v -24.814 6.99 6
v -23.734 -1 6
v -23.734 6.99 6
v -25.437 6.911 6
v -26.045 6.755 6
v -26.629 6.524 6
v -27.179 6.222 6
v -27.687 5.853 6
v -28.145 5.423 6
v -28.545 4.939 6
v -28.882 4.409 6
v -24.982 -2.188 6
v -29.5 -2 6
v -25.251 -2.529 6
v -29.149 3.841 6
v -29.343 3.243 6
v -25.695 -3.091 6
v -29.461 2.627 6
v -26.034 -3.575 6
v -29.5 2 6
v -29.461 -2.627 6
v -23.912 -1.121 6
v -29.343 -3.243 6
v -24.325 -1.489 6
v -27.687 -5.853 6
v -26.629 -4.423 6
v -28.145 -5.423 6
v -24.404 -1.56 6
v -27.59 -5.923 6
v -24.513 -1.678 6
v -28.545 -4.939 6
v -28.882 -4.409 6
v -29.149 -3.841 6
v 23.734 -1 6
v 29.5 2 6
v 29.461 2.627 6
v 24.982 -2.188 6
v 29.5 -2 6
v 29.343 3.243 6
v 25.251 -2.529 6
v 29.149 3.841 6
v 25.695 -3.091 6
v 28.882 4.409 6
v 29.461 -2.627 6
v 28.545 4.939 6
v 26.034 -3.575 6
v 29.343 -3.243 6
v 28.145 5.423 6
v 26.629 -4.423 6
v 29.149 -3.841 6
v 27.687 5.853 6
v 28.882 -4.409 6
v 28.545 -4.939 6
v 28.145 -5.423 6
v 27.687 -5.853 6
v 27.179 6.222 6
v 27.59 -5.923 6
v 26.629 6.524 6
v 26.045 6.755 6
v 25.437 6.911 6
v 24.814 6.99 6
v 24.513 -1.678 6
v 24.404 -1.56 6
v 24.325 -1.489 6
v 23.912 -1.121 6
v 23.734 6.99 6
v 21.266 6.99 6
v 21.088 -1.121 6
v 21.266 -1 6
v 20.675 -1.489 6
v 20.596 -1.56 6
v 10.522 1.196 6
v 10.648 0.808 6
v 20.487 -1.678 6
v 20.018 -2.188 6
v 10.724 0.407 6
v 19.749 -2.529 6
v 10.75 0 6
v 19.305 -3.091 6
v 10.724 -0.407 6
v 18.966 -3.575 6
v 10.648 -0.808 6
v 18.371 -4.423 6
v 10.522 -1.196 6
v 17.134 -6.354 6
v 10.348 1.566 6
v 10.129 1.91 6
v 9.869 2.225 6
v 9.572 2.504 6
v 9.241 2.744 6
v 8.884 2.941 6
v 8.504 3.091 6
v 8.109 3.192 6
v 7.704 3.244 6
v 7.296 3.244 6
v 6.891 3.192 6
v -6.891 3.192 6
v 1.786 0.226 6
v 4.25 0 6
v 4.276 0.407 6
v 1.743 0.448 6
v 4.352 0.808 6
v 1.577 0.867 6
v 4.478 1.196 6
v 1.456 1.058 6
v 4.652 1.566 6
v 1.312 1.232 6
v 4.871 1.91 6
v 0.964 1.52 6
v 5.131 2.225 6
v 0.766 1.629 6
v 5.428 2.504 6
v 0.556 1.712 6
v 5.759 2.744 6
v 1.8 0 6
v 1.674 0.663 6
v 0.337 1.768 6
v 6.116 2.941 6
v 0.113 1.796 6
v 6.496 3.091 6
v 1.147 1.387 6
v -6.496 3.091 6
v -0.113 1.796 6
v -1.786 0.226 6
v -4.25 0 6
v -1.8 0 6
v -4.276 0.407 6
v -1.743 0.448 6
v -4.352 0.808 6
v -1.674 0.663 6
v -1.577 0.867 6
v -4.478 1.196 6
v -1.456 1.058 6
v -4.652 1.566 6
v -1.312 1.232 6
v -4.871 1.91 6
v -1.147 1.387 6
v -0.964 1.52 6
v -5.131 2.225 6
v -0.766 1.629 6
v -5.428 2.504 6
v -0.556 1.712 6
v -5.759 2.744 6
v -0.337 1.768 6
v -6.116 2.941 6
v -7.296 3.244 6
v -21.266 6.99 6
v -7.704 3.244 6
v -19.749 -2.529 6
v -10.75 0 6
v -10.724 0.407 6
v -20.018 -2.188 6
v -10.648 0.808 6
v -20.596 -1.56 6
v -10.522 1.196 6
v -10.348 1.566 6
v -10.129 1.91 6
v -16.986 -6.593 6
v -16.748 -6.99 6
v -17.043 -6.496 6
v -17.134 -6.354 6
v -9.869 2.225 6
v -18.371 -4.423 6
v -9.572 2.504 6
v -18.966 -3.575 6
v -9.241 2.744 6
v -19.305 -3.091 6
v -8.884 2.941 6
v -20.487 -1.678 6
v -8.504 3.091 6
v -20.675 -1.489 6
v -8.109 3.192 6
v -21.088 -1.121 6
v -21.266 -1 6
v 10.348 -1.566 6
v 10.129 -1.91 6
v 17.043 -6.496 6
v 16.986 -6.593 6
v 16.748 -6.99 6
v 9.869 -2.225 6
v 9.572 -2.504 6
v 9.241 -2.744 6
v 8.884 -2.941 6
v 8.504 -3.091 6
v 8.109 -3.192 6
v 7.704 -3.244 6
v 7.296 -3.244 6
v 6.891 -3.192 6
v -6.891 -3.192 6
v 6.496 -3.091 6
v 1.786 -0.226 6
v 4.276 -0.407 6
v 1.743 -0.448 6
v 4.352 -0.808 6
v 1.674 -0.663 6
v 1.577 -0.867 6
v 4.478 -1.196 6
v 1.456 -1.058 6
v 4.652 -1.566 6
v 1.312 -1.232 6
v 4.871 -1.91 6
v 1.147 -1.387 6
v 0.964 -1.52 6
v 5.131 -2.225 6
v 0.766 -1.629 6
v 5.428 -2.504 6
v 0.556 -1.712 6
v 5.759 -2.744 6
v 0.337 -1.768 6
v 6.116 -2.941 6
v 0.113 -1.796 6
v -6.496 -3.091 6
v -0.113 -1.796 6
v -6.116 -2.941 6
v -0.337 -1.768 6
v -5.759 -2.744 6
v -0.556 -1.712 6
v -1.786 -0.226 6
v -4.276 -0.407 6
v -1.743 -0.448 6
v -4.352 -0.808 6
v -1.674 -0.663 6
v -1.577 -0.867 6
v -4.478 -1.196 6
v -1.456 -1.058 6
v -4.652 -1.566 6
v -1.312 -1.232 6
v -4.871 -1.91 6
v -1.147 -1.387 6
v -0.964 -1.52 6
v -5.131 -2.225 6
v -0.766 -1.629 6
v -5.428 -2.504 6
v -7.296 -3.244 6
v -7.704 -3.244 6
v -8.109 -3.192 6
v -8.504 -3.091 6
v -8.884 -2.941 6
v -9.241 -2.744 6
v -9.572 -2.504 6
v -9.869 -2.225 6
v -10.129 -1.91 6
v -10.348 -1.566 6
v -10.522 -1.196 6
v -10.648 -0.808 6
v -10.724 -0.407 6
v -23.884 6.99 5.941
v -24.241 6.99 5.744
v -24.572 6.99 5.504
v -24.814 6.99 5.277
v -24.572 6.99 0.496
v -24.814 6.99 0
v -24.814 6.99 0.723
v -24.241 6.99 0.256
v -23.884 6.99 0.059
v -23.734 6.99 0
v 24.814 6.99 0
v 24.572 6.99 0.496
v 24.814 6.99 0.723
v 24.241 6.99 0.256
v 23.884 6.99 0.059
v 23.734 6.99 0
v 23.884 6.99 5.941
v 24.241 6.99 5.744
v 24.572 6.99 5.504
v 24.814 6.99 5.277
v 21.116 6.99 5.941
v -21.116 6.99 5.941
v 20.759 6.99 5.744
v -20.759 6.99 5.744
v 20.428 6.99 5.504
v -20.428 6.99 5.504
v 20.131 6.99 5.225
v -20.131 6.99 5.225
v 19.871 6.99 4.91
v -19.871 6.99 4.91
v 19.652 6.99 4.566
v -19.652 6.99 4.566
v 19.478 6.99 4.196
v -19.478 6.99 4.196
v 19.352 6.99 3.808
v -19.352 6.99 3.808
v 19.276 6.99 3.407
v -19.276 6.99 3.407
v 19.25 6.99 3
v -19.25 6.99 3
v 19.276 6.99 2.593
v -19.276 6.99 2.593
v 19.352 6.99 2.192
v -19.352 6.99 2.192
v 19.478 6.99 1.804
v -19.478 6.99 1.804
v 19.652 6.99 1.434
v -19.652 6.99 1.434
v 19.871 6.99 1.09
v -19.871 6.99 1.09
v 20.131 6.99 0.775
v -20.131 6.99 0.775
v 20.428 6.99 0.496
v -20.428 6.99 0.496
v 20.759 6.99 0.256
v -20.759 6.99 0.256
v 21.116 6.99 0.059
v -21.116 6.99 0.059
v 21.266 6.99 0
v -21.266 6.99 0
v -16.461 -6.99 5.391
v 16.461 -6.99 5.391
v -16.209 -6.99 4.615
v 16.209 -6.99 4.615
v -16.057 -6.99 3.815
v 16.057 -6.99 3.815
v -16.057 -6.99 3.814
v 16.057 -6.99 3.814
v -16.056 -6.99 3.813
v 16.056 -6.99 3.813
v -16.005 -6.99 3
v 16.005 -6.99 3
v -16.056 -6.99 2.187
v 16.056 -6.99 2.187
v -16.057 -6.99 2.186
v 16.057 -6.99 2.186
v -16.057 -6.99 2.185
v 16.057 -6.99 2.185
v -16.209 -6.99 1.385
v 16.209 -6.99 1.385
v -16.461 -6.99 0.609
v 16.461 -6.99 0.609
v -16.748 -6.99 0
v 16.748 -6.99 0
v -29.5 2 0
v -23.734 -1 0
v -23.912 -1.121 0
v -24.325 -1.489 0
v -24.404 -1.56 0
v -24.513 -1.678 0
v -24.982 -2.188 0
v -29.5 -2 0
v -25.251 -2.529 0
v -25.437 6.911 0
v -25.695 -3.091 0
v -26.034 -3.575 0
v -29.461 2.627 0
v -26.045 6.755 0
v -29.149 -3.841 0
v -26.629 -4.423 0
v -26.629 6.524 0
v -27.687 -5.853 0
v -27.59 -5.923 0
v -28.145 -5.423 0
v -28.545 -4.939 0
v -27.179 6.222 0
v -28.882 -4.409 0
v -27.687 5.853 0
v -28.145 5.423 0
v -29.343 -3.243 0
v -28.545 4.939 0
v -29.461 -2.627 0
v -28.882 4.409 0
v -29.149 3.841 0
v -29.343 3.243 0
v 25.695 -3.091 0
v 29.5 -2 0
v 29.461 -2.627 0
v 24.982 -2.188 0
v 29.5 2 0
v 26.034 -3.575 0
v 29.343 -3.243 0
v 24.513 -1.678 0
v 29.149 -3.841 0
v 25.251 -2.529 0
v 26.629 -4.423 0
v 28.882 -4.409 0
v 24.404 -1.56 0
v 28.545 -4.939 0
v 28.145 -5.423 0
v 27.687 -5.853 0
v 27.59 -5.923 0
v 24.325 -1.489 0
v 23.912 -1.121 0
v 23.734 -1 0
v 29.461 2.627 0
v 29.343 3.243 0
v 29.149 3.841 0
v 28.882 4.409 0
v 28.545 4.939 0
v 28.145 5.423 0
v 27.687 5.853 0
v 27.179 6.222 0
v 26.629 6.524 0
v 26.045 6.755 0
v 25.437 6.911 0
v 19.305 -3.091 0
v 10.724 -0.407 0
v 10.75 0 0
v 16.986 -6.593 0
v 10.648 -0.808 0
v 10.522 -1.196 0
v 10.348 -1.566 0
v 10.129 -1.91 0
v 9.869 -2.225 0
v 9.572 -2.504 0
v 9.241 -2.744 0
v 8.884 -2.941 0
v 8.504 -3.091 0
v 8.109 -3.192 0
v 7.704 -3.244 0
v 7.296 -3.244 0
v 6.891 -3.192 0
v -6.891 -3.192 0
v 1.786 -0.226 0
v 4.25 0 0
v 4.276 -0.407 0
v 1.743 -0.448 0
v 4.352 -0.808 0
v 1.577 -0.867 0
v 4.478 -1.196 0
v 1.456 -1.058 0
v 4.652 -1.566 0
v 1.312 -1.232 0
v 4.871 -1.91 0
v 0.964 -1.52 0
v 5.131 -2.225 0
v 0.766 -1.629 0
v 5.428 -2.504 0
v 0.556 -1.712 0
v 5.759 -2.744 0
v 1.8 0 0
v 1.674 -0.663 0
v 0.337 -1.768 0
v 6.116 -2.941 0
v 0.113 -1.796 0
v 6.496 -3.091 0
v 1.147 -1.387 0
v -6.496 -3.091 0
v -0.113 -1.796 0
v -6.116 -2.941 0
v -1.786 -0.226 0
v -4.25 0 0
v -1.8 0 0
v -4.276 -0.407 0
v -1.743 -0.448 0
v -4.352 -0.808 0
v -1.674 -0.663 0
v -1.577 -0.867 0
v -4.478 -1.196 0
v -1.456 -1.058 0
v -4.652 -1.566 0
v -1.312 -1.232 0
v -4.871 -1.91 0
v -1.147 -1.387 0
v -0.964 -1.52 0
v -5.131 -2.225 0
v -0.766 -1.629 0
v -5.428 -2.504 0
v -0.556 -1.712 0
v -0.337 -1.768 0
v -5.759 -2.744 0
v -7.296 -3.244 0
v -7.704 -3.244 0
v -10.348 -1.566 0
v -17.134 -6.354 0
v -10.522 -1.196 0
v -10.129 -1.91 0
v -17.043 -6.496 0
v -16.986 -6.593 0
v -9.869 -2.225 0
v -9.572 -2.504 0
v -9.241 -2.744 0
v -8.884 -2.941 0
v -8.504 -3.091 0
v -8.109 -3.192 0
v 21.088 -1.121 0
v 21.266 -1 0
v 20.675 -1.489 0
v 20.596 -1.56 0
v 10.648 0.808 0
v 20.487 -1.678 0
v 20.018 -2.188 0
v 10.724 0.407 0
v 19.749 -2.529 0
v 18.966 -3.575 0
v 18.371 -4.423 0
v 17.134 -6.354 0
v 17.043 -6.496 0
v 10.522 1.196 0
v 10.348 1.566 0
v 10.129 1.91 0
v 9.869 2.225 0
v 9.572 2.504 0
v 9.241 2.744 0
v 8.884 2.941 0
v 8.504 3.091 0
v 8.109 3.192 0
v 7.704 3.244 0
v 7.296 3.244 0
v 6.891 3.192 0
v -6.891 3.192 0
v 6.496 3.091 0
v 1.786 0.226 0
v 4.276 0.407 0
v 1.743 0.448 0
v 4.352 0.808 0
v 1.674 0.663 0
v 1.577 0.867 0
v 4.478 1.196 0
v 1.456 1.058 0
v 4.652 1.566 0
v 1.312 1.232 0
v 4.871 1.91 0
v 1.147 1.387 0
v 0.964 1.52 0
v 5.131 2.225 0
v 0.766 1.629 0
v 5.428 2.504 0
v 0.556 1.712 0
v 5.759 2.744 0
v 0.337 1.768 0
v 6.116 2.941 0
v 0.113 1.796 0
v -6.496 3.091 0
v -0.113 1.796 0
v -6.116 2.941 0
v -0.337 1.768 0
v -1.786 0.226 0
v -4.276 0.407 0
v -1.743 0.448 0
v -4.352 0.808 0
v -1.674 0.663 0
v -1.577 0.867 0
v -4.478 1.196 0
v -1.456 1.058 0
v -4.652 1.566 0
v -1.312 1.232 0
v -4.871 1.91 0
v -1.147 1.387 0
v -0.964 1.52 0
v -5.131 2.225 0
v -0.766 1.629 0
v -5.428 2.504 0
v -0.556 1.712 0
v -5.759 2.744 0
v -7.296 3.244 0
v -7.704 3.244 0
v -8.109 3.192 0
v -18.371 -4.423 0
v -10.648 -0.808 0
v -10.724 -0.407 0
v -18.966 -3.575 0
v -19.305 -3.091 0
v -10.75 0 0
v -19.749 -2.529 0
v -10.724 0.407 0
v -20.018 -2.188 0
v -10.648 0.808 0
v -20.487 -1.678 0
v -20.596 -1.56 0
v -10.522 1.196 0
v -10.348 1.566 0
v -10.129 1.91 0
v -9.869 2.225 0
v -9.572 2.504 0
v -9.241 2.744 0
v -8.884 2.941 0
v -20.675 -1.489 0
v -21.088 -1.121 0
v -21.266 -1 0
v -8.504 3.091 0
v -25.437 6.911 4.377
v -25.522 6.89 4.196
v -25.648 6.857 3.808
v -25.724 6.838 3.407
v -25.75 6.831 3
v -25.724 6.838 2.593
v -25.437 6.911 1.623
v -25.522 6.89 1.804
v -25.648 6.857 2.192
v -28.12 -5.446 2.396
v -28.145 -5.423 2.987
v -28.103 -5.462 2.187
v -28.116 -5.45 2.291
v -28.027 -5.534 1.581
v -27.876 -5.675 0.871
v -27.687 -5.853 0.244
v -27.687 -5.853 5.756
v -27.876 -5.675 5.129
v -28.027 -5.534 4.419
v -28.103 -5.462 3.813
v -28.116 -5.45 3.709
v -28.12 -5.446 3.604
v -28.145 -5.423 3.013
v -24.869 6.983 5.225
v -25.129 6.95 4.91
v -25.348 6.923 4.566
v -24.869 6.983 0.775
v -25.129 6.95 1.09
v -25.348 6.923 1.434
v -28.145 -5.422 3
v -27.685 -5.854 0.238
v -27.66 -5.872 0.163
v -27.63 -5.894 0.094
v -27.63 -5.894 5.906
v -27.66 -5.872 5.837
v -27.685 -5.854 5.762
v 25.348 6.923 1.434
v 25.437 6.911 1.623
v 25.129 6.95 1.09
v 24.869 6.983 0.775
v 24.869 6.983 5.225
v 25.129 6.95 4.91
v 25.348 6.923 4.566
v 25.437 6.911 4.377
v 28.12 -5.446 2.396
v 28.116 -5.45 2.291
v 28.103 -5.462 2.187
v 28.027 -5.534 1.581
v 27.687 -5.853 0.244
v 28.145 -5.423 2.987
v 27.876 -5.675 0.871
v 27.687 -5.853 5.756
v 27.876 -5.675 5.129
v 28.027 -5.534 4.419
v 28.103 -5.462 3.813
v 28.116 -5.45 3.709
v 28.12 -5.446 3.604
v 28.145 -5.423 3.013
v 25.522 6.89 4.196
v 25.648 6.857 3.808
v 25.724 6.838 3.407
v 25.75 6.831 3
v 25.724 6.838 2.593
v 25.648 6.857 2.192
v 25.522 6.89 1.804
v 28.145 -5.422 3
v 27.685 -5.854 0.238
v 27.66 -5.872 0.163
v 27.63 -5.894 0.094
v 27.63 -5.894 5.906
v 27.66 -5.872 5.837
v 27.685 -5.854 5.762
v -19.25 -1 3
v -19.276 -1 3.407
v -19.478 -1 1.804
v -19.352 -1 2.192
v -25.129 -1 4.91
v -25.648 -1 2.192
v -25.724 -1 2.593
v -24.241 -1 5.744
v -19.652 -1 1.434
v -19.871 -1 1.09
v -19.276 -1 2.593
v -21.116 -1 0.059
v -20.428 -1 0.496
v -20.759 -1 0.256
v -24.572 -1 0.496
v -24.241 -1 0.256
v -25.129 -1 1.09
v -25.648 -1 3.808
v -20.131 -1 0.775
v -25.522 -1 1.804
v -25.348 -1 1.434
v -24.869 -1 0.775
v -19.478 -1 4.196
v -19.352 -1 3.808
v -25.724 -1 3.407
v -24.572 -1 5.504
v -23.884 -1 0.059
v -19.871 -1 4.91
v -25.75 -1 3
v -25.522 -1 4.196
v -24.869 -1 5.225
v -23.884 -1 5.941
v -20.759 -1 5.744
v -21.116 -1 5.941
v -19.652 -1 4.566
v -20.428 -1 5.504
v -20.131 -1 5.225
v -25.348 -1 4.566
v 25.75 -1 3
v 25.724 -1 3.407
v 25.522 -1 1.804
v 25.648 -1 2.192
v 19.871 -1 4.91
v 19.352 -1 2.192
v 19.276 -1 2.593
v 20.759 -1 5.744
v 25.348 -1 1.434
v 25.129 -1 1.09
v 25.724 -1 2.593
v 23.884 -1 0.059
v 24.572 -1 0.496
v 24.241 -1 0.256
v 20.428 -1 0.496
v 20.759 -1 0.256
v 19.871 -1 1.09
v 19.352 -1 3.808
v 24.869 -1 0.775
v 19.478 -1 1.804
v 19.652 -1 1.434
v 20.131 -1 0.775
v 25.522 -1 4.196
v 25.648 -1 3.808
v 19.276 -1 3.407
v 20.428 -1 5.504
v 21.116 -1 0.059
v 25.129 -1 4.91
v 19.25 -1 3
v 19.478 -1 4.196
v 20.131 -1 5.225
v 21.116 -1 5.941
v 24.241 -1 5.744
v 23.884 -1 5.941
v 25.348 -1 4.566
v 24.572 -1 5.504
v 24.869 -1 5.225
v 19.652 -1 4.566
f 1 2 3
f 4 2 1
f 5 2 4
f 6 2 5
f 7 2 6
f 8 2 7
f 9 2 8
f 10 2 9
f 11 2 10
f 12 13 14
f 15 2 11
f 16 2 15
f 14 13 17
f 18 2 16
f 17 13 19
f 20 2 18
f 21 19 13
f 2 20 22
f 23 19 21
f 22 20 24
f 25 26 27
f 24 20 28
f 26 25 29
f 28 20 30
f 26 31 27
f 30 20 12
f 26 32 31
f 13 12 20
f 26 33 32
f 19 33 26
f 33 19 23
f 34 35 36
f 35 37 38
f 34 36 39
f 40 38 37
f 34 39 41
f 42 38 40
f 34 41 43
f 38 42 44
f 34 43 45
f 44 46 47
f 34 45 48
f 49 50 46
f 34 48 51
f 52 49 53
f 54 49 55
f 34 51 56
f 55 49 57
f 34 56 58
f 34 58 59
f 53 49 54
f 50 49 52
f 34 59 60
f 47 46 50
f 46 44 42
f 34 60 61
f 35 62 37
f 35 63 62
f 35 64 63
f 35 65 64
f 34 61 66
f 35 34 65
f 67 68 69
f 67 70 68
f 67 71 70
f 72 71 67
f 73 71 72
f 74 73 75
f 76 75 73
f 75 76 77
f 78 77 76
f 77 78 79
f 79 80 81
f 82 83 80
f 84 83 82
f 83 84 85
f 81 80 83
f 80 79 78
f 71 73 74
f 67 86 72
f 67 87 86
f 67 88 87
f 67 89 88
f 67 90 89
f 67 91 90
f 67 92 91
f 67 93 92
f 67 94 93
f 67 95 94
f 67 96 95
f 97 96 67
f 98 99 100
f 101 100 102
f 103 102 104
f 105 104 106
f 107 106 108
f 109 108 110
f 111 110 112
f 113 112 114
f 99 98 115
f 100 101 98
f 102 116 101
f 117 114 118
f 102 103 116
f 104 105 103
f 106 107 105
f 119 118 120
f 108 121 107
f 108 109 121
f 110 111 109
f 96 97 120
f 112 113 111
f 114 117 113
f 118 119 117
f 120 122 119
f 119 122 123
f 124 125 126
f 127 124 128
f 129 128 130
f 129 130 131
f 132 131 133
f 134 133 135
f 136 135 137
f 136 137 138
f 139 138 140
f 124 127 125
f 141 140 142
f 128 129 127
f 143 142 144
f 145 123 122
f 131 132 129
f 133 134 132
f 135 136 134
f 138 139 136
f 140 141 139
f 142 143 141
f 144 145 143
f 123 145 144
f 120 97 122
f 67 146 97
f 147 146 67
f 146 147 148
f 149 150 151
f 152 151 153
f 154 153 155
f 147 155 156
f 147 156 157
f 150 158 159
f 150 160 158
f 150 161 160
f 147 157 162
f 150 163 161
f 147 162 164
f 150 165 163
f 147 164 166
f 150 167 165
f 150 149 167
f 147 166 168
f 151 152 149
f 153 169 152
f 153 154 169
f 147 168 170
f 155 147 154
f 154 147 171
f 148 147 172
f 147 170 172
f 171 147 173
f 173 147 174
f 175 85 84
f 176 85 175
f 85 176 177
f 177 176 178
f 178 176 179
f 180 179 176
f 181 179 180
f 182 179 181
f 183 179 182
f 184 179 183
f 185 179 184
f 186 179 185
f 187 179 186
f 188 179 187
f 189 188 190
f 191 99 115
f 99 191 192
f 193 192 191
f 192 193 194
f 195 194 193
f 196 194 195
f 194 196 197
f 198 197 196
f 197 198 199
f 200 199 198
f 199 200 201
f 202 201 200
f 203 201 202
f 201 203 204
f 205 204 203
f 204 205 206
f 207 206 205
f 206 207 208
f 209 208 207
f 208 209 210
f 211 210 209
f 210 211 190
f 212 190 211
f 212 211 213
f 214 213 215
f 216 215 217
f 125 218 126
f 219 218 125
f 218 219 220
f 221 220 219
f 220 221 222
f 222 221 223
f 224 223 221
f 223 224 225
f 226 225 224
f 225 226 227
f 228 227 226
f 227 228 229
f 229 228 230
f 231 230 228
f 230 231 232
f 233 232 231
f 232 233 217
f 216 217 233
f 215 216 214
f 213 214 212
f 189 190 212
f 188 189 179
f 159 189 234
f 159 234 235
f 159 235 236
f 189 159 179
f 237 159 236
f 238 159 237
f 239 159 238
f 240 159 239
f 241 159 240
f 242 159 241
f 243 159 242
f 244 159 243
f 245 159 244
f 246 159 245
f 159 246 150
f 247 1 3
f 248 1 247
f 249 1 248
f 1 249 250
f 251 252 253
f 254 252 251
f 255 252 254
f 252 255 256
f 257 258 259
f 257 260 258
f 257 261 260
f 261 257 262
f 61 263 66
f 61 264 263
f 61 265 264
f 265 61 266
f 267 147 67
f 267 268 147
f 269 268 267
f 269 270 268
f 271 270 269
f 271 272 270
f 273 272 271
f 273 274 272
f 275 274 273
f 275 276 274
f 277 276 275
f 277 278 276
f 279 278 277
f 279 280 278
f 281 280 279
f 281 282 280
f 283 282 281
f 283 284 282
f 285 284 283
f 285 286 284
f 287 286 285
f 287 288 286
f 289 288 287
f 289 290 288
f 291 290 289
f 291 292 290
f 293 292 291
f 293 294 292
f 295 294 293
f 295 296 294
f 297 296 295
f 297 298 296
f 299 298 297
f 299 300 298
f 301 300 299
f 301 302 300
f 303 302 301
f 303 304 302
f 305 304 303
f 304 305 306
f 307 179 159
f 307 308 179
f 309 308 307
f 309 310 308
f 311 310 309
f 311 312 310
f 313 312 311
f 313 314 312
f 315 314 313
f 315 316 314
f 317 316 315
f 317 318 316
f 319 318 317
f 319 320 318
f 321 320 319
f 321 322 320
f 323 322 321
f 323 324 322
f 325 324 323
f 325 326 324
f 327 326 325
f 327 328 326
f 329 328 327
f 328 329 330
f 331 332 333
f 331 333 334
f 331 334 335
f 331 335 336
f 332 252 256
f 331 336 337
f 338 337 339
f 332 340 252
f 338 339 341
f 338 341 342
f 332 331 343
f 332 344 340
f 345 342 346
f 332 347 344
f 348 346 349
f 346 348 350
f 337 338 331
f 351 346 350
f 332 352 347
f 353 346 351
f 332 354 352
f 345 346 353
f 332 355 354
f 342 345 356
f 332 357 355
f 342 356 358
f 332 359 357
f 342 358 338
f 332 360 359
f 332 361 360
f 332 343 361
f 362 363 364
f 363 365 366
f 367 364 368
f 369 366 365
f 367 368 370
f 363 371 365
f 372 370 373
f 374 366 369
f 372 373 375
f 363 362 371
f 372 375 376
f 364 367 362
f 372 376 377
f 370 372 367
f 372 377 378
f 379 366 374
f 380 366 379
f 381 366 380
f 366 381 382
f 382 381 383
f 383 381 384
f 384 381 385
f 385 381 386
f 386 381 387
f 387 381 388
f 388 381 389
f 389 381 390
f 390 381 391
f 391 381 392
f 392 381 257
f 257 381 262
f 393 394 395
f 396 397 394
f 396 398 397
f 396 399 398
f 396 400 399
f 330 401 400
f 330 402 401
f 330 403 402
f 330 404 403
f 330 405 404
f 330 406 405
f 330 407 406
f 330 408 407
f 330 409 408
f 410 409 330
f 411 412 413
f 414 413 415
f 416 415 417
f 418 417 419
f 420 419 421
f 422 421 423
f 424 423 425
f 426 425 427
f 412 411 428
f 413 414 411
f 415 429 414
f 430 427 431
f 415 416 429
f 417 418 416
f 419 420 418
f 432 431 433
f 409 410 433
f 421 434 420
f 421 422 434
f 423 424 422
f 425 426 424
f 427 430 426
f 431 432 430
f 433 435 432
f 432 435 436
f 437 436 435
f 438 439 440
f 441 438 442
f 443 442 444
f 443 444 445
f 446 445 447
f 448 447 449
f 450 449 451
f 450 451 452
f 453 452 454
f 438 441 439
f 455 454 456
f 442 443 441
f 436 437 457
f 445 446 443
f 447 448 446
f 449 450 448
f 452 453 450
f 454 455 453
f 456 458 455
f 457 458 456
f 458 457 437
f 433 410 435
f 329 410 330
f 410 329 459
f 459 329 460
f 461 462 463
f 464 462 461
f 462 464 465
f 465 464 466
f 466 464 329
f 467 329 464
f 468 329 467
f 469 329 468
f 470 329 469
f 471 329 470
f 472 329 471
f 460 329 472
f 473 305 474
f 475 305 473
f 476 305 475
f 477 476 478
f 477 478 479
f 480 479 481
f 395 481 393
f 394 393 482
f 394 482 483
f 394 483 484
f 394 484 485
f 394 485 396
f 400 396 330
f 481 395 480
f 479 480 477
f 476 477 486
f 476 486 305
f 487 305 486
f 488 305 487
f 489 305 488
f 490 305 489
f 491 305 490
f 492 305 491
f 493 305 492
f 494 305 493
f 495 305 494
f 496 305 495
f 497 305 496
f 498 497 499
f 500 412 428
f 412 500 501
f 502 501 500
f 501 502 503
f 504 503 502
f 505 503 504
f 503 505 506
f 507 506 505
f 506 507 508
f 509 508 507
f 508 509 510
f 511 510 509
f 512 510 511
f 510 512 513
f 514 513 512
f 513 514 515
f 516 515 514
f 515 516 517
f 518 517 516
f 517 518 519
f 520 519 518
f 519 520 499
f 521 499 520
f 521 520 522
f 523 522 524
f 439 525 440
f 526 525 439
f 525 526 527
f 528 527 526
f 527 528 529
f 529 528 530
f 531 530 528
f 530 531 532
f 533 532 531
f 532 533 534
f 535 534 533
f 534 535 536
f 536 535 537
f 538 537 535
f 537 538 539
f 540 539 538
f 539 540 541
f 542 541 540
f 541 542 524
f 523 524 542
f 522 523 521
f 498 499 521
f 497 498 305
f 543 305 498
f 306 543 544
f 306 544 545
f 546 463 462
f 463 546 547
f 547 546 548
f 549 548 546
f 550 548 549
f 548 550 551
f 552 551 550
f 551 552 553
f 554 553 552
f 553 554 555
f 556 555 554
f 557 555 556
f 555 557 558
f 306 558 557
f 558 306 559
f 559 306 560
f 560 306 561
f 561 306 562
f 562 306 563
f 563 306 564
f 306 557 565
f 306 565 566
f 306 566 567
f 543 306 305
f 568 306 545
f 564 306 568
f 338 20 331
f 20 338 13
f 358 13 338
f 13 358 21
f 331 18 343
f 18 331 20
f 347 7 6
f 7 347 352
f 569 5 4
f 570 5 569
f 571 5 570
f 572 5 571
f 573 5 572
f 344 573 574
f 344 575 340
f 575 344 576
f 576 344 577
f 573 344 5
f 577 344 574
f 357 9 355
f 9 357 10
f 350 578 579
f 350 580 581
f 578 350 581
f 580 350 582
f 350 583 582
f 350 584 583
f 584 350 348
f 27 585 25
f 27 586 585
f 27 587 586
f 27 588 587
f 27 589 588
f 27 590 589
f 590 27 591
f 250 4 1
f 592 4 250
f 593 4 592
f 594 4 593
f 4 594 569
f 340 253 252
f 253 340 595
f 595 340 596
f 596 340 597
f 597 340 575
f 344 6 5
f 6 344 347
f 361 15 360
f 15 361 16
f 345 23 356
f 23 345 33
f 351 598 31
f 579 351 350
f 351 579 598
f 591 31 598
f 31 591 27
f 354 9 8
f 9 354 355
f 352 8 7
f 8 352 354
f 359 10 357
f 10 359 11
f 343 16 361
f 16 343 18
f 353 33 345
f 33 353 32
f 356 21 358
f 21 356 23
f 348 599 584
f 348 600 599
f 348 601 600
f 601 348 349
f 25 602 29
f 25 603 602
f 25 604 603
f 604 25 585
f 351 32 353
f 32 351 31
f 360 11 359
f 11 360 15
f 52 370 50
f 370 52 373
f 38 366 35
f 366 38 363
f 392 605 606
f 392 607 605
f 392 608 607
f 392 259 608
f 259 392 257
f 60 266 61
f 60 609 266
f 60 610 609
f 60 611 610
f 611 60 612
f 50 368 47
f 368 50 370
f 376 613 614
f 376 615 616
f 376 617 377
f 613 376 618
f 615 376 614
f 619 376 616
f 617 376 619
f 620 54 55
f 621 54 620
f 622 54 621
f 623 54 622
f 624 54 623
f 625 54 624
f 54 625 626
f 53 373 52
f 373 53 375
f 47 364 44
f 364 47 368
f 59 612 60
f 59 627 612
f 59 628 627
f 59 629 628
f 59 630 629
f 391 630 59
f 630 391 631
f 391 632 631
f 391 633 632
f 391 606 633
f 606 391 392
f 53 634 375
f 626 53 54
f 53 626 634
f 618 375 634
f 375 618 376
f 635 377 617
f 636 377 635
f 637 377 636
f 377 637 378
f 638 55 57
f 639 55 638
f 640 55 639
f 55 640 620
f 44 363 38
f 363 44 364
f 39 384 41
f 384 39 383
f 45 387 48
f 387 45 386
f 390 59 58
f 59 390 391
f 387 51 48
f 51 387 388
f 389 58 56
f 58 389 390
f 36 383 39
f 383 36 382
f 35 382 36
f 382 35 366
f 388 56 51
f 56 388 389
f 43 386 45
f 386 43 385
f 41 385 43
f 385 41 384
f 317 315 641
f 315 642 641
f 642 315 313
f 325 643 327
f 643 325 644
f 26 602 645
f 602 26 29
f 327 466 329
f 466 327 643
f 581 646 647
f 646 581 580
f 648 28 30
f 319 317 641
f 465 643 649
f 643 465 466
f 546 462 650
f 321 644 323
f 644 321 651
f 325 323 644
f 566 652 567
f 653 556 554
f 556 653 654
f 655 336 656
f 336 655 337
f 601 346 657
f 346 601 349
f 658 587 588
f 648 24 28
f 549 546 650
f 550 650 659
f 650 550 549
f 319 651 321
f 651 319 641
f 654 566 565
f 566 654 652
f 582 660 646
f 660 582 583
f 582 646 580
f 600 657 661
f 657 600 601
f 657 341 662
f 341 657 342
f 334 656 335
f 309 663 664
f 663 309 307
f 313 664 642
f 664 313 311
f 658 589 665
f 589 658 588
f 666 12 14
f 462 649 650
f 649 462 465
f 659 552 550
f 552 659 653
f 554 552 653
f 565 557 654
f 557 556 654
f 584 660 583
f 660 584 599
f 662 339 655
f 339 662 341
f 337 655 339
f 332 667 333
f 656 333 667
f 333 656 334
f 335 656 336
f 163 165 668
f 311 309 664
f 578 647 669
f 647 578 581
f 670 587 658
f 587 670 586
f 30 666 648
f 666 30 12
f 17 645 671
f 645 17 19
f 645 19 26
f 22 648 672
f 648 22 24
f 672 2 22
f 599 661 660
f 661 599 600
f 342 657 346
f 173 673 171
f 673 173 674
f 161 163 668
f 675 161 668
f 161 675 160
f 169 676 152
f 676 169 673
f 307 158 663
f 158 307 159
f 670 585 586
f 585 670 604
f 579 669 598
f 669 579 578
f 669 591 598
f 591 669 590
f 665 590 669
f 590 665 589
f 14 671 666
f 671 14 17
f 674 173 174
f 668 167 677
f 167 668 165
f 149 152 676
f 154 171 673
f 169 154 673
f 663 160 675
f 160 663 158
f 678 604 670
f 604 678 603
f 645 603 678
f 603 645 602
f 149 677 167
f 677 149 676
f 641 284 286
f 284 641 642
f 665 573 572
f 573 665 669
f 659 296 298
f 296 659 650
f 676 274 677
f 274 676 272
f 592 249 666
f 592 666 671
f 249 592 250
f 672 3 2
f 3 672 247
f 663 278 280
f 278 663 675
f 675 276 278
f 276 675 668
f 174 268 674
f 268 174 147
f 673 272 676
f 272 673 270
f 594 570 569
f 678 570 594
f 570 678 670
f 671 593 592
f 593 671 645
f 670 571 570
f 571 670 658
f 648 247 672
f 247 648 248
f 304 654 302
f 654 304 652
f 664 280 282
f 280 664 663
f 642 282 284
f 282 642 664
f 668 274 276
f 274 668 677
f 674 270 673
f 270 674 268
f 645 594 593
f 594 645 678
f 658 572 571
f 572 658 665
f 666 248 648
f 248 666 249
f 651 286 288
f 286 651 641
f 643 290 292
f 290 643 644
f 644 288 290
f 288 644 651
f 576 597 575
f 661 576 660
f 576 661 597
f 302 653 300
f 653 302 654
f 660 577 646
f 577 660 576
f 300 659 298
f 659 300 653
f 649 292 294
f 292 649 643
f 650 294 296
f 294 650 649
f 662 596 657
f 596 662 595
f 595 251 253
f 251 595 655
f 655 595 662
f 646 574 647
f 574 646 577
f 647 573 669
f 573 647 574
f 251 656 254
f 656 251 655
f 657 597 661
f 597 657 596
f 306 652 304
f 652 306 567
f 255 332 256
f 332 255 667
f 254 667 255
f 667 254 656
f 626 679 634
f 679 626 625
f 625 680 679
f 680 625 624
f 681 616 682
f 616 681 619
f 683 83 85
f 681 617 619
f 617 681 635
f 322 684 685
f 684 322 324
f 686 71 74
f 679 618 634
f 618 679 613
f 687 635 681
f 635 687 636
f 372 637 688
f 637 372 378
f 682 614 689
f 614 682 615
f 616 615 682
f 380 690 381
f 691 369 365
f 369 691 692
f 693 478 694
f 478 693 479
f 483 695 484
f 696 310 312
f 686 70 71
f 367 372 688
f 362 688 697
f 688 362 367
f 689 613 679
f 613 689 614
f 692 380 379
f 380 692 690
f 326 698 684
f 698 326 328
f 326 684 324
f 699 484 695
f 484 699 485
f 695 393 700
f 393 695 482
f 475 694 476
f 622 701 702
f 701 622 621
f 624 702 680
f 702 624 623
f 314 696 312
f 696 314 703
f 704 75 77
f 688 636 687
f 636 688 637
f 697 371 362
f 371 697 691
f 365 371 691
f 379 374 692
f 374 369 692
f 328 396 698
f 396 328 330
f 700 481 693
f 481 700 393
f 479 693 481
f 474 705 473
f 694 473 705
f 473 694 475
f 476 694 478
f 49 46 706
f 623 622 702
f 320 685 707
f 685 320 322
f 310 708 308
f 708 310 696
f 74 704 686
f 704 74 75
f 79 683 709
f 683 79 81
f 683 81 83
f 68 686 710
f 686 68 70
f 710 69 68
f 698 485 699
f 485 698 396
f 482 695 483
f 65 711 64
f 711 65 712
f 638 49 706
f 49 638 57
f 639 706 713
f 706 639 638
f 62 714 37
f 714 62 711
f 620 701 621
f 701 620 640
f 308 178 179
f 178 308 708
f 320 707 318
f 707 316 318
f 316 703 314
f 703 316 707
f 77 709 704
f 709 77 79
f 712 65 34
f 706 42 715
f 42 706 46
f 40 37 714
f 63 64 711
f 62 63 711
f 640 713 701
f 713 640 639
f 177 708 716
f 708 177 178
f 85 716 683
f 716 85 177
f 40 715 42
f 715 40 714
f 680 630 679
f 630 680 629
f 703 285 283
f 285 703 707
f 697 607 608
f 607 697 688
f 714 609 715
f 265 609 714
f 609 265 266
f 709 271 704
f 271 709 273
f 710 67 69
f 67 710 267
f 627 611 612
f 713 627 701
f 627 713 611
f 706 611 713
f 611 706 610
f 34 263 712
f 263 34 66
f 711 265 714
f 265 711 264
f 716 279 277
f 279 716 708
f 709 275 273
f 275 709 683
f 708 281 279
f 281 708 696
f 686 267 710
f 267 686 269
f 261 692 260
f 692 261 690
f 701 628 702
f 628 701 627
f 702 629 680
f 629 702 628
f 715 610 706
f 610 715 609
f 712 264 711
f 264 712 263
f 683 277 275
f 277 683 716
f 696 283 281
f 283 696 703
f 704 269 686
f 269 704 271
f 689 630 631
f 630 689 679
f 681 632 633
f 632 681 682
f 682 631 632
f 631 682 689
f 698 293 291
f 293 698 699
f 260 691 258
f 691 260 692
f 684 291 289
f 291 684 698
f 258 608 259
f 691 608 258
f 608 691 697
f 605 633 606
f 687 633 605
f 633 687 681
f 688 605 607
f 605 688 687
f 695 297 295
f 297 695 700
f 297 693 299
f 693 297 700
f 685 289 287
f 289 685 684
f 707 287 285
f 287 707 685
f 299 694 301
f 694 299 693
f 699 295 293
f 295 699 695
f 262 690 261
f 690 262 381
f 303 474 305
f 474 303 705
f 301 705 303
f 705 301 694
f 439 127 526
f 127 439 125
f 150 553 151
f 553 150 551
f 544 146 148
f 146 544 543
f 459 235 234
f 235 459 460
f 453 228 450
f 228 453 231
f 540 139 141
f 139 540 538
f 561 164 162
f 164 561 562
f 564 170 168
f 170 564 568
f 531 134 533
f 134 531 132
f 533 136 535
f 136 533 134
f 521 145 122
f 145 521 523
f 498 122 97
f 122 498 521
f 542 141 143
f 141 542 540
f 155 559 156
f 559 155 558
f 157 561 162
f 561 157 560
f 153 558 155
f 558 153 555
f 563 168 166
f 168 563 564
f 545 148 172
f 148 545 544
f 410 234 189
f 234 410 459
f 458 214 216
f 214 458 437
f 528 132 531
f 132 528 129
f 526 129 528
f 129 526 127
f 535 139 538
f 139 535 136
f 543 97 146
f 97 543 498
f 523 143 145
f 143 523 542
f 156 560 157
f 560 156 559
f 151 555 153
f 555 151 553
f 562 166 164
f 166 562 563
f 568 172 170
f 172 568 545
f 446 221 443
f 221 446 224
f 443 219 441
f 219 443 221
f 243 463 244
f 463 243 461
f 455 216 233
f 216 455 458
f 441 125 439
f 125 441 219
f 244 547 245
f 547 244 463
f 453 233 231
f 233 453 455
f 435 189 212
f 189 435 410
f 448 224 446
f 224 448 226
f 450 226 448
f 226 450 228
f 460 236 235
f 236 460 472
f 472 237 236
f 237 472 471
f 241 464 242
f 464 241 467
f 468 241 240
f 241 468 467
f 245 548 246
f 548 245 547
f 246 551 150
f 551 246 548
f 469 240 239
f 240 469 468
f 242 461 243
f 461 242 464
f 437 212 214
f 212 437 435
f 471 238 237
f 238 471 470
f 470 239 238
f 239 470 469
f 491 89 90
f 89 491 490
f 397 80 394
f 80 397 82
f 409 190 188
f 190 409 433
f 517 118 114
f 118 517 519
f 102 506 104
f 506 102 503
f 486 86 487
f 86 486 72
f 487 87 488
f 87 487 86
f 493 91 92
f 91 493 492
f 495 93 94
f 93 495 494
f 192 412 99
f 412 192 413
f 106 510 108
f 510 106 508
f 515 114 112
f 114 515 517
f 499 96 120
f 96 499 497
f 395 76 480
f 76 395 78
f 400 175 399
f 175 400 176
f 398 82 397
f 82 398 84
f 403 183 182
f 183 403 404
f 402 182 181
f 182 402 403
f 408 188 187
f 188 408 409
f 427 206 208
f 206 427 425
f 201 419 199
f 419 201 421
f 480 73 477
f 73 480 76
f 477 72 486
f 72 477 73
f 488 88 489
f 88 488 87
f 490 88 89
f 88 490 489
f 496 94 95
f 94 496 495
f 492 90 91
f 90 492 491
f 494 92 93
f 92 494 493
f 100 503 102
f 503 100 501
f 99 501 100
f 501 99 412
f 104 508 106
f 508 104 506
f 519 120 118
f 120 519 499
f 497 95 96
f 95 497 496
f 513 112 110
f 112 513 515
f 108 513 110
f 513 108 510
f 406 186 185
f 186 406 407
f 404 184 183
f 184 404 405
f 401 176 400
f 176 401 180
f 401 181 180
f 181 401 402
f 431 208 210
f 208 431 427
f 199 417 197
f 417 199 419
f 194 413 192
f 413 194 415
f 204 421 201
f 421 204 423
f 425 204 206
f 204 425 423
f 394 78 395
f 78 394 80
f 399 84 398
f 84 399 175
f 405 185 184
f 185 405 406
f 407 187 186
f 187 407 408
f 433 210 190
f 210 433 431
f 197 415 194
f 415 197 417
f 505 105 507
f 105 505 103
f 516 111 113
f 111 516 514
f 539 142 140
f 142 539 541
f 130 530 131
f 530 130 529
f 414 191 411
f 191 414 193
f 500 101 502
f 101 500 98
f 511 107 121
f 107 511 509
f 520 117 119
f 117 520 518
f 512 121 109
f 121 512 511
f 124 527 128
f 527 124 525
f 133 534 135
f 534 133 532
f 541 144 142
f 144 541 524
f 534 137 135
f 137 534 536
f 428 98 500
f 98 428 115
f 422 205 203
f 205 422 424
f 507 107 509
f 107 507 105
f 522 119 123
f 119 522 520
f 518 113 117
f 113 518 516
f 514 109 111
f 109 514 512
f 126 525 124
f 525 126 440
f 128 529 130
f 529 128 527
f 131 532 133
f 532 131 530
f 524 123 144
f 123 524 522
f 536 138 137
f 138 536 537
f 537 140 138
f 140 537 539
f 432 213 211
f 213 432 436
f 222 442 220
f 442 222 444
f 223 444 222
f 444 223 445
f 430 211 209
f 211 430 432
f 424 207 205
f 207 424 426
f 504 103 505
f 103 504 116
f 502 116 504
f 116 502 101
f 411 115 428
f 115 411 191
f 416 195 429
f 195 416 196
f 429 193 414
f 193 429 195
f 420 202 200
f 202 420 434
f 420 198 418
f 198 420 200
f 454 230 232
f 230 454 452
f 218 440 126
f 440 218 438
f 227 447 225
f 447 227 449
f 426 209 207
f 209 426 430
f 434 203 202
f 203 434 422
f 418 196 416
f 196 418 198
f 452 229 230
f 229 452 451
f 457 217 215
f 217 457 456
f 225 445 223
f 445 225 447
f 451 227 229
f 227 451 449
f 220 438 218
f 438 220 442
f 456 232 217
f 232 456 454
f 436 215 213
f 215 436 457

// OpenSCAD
$fn = 50;


difference() {
	union() {
		hull() {
			translate(v = [-9.5000000000, 2.0000000000, 0]) {
				cylinder(h = 6, r = 5);
			}
			translate(v = [9.5000000000, 2.0000000000, 0]) {
				cylinder(h = 6, r = 5);
			}
			translate(v = [-9.5000000000, -2.0000000000, 0]) {
				cylinder(h = 6, r = 5);
			}
			translate(v = [9.5000000000, -2.0000000000, 0]) {
				cylinder(h = 6, r = 5);
			}
		}
		translate(v = [-15.0000000000, 0.0000000000, 0]) {
			hull() {
				translate(v = [-9.5000000000, 2.0000000000, 0]) {
					cylinder(h = 6, r = 5);
				}
				translate(v = [9.5000000000, 2.0000000000, 0]) {
					cylinder(h = 6, r = 5);
				}
				translate(v = [-9.5000000000, -2.0000000000, 0]) {
					cylinder(h = 6, r = 5);
				}
				translate(v = [9.5000000000, -2.0000000000, 0]) {
					cylinder(h = 6, r = 5);
				}
			}
		}
		translate(v = [-15.0000000000, 0.0000000000, 0]) {
			hull() {
				translate(v = [-9.5000000000, 2.0000000000, 0]) {
					cylinder(h = 6, r = 5);
				}
				translate(v = [9.5000000000, 2.0000000000, 0]) {
					cylinder(h = 6, r = 5);
				}
				translate(v = [-9.5000000000, -2.0000000000, 0]) {
					cylinder(h = 6, r = 5);
				}
				translate(v = [9.5000000000, -2.0000000000, 0]) {
					cylinder(h = 6, r = 5);
				}
			}
		}
		translate(v = [15.0000000000, 0.0000000000, 0]) {
			hull() {
				translate(v = [-9.5000000000, 2.0000000000, 0]) {
					cylinder(h = 6, r = 5);
				}
				translate(v = [9.5000000000, 2.0000000000, 0]) {
					cylinder(h = 6, r = 5);
				}
				translate(v = [-9.5000000000, -2.0000000000, 0]) {
					cylinder(h = 6, r = 5);
				}
				translate(v = [9.5000000000, -2.0000000000, 0]) {
					cylinder(h = 6, r = 5);
				}
			}
		}
		translate(v = [15.0000000000, 0.0000000000, 0]) {
			hull() {
				translate(v = [-9.5000000000, 2.0000000000, 0]) {
					cylinder(h = 6, r = 5);
				}
				translate(v = [9.5000000000, 2.0000000000, 0]) {
					cylinder(h = 6, r = 5);
				}
				translate(v = [-9.5000000000, -2.0000000000, 0]) {
					cylinder(h = 6, r = 5);
				}
				translate(v = [9.5000000000, -2.0000000000, 0]) {
					cylinder(h = 6, r = 5);
				}
			}
		}
	}
	union() {
		translate(v = [-22.5000000000, -7.0000000000, 3.0000000000]) {
			rotate(a = [90, 0, 0]) {
				difference() {
					union() {
						#translate(v = [0, 0, -14.0000000000]) {
							cylinder(h = 14, r = 2.2500000000);
						}
						#translate(v = [0, 0, -6]) {
							cylinder(h = 6, r1 = 3.2500000000, r2 = 6.5000000000);
						}
						#translate(v = [0, 0, -14.0000000000]) {
							cylinder(h = 14, r = 3.2500000000);
						}
						#translate(v = [0, 0, -14.0000000000]) {
							cylinder(h = 14, r = 2.2500000000);
						}
					}
					union();
				}
			}
		}
		translate(v = [22.5000000000, -7.0000000000, 3.0000000000]) {
			rotate(a = [90, 0, 0]) {
				difference() {
					union() {
						#translate(v = [0, 0, -14.0000000000]) {
							cylinder(h = 14, r = 2.2500000000);
						}
						#translate(v = [0, 0, -6]) {
							cylinder(h = 6, r1 = 3.2500000000, r2 = 6.5000000000);
						}
						#translate(v = [0, 0, -14.0000000000]) {
							cylinder(h = 14, r = 3.2500000000);
						}
						#translate(v = [0, 0, -14.0000000000]) {
							cylinder(h = 14, r = 2.2500000000);
						}
					}
					union();
				}
			}
		}
		translate(v = [-7.5000000000, 0.0000000000, 0]) {
			translate(v = [0, 0, -100]) {
				cylinder(h = 200, r = 3.2500000000);
			}
		}
		translate(v = [7.5000000000, 0.0000000000, 0]) {
			translate(v = [0, 0, -100]) {
				cylinder(h = 200, r = 3.2500000000);
			}
		}
		translate(v = [-7.5000000000, 0.0000000000, 0]) {
			translate(v = [0, 0, -100]) {
				cylinder(h = 200, r = 1.8000000000);
			}
		}
		translate(v = [0, 0, -100]) {
			cylinder(h = 200, r = 1.8000000000);
		}
		translate(v = [7.5000000000, 0.0000000000, 0]) {
			translate(v = [0, 0, -100]) {
				cylinder(h = 200, r = 1.8000000000);
			}
		}
	}
}
